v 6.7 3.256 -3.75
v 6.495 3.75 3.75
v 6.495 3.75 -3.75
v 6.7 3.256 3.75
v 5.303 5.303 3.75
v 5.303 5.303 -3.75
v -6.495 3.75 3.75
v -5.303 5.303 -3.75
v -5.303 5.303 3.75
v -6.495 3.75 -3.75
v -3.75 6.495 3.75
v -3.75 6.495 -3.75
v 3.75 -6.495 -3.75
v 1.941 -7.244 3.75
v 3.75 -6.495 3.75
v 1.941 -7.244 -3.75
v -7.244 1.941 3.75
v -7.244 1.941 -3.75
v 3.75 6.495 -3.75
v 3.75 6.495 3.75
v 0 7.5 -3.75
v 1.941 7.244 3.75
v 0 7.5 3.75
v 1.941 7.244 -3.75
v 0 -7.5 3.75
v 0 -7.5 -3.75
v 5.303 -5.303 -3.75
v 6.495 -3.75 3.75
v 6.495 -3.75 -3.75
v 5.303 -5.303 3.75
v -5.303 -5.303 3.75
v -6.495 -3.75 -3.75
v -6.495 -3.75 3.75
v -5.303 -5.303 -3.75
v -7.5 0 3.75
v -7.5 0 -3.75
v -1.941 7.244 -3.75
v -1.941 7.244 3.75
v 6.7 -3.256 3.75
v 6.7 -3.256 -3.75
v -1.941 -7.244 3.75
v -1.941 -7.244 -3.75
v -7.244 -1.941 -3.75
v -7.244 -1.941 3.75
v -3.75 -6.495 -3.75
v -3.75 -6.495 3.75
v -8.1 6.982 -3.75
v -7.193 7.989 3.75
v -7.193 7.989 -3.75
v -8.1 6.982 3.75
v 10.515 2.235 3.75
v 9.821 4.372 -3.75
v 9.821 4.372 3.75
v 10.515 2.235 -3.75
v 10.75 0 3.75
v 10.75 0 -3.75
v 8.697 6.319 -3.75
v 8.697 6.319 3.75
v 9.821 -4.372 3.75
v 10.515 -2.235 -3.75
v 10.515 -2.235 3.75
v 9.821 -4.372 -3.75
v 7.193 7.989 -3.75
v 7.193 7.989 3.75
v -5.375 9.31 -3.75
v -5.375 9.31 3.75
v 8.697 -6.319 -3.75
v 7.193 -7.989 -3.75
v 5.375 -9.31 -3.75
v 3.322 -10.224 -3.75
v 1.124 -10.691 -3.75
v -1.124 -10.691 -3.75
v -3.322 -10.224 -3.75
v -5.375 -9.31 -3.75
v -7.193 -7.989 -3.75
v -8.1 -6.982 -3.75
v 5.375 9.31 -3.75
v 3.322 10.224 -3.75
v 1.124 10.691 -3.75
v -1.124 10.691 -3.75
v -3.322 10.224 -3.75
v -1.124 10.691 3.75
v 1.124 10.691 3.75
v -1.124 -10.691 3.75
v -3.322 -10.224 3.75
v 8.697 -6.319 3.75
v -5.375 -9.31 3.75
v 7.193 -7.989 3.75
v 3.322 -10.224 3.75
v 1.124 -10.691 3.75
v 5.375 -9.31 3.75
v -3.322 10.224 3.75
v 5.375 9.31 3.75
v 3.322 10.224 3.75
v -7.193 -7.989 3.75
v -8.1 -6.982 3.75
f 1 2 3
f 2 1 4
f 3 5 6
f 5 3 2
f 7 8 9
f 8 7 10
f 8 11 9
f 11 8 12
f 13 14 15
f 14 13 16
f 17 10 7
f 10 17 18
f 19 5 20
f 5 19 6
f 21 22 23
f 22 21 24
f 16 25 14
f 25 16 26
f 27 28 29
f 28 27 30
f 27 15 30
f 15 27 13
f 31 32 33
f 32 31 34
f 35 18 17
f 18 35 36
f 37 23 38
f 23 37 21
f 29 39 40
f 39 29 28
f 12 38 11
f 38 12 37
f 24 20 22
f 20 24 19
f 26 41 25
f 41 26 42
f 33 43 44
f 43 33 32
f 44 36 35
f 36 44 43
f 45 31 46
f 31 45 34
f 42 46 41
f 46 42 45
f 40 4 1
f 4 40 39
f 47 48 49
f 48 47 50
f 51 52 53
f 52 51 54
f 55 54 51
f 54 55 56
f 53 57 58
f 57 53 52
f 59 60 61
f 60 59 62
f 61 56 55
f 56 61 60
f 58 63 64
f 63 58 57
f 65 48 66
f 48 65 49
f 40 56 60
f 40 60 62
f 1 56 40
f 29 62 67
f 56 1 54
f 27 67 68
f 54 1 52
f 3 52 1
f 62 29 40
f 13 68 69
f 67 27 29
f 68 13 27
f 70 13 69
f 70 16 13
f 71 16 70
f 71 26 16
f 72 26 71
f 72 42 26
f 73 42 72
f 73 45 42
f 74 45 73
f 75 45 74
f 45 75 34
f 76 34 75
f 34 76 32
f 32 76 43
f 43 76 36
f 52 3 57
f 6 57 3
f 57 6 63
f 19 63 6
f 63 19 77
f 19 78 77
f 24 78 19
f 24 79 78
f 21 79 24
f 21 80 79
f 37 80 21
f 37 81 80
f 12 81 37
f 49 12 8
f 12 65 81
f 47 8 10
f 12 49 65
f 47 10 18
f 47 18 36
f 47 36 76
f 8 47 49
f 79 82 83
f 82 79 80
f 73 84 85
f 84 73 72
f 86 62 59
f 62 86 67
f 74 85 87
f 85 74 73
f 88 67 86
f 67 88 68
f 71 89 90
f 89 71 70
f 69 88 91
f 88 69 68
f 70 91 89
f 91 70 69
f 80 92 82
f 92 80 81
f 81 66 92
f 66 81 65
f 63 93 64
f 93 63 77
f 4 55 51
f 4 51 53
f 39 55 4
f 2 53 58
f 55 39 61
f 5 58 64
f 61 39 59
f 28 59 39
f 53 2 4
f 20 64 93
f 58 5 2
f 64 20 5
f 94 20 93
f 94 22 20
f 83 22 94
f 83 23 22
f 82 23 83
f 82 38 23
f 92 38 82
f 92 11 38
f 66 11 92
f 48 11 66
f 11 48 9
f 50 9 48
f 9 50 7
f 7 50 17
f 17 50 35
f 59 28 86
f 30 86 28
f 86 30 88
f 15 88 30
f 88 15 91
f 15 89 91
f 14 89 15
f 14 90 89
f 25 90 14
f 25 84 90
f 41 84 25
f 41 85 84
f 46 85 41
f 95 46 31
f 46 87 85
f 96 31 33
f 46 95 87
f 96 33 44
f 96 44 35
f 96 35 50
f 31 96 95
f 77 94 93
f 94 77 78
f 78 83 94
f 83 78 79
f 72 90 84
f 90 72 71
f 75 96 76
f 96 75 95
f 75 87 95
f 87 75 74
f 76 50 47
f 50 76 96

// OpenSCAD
panel_mount_usb_neck_diameter = 15;
panel_mount_usb_neck_length = 9;
panel_mount_usb_shoulder_diameter = 22;
panel_mount_usb_flat_edge = 0.8;


difference() {
  cylinder(d=panel_mount_usb_neck_diameter+6.5, h=7.5, center=true);
  difference() {
    cylinder(d=panel_mount_usb_neck_diameter, h=7.51, center=true);
    translate([panel_mount_usb_neck_diameter - panel_mount_usb_flat_edge,0,0])
      cube([panel_mount_usb_neck_diameter,panel_mount_usb_neck_diameter, 7.51], center=true);
  }
  translate([-panel_mount_usb_neck_diameter-0.6,0,0])
  cube([panel_mount_usb_neck_diameter,panel_mount_usb_neck_diameter, 7.51], center=true);
}
